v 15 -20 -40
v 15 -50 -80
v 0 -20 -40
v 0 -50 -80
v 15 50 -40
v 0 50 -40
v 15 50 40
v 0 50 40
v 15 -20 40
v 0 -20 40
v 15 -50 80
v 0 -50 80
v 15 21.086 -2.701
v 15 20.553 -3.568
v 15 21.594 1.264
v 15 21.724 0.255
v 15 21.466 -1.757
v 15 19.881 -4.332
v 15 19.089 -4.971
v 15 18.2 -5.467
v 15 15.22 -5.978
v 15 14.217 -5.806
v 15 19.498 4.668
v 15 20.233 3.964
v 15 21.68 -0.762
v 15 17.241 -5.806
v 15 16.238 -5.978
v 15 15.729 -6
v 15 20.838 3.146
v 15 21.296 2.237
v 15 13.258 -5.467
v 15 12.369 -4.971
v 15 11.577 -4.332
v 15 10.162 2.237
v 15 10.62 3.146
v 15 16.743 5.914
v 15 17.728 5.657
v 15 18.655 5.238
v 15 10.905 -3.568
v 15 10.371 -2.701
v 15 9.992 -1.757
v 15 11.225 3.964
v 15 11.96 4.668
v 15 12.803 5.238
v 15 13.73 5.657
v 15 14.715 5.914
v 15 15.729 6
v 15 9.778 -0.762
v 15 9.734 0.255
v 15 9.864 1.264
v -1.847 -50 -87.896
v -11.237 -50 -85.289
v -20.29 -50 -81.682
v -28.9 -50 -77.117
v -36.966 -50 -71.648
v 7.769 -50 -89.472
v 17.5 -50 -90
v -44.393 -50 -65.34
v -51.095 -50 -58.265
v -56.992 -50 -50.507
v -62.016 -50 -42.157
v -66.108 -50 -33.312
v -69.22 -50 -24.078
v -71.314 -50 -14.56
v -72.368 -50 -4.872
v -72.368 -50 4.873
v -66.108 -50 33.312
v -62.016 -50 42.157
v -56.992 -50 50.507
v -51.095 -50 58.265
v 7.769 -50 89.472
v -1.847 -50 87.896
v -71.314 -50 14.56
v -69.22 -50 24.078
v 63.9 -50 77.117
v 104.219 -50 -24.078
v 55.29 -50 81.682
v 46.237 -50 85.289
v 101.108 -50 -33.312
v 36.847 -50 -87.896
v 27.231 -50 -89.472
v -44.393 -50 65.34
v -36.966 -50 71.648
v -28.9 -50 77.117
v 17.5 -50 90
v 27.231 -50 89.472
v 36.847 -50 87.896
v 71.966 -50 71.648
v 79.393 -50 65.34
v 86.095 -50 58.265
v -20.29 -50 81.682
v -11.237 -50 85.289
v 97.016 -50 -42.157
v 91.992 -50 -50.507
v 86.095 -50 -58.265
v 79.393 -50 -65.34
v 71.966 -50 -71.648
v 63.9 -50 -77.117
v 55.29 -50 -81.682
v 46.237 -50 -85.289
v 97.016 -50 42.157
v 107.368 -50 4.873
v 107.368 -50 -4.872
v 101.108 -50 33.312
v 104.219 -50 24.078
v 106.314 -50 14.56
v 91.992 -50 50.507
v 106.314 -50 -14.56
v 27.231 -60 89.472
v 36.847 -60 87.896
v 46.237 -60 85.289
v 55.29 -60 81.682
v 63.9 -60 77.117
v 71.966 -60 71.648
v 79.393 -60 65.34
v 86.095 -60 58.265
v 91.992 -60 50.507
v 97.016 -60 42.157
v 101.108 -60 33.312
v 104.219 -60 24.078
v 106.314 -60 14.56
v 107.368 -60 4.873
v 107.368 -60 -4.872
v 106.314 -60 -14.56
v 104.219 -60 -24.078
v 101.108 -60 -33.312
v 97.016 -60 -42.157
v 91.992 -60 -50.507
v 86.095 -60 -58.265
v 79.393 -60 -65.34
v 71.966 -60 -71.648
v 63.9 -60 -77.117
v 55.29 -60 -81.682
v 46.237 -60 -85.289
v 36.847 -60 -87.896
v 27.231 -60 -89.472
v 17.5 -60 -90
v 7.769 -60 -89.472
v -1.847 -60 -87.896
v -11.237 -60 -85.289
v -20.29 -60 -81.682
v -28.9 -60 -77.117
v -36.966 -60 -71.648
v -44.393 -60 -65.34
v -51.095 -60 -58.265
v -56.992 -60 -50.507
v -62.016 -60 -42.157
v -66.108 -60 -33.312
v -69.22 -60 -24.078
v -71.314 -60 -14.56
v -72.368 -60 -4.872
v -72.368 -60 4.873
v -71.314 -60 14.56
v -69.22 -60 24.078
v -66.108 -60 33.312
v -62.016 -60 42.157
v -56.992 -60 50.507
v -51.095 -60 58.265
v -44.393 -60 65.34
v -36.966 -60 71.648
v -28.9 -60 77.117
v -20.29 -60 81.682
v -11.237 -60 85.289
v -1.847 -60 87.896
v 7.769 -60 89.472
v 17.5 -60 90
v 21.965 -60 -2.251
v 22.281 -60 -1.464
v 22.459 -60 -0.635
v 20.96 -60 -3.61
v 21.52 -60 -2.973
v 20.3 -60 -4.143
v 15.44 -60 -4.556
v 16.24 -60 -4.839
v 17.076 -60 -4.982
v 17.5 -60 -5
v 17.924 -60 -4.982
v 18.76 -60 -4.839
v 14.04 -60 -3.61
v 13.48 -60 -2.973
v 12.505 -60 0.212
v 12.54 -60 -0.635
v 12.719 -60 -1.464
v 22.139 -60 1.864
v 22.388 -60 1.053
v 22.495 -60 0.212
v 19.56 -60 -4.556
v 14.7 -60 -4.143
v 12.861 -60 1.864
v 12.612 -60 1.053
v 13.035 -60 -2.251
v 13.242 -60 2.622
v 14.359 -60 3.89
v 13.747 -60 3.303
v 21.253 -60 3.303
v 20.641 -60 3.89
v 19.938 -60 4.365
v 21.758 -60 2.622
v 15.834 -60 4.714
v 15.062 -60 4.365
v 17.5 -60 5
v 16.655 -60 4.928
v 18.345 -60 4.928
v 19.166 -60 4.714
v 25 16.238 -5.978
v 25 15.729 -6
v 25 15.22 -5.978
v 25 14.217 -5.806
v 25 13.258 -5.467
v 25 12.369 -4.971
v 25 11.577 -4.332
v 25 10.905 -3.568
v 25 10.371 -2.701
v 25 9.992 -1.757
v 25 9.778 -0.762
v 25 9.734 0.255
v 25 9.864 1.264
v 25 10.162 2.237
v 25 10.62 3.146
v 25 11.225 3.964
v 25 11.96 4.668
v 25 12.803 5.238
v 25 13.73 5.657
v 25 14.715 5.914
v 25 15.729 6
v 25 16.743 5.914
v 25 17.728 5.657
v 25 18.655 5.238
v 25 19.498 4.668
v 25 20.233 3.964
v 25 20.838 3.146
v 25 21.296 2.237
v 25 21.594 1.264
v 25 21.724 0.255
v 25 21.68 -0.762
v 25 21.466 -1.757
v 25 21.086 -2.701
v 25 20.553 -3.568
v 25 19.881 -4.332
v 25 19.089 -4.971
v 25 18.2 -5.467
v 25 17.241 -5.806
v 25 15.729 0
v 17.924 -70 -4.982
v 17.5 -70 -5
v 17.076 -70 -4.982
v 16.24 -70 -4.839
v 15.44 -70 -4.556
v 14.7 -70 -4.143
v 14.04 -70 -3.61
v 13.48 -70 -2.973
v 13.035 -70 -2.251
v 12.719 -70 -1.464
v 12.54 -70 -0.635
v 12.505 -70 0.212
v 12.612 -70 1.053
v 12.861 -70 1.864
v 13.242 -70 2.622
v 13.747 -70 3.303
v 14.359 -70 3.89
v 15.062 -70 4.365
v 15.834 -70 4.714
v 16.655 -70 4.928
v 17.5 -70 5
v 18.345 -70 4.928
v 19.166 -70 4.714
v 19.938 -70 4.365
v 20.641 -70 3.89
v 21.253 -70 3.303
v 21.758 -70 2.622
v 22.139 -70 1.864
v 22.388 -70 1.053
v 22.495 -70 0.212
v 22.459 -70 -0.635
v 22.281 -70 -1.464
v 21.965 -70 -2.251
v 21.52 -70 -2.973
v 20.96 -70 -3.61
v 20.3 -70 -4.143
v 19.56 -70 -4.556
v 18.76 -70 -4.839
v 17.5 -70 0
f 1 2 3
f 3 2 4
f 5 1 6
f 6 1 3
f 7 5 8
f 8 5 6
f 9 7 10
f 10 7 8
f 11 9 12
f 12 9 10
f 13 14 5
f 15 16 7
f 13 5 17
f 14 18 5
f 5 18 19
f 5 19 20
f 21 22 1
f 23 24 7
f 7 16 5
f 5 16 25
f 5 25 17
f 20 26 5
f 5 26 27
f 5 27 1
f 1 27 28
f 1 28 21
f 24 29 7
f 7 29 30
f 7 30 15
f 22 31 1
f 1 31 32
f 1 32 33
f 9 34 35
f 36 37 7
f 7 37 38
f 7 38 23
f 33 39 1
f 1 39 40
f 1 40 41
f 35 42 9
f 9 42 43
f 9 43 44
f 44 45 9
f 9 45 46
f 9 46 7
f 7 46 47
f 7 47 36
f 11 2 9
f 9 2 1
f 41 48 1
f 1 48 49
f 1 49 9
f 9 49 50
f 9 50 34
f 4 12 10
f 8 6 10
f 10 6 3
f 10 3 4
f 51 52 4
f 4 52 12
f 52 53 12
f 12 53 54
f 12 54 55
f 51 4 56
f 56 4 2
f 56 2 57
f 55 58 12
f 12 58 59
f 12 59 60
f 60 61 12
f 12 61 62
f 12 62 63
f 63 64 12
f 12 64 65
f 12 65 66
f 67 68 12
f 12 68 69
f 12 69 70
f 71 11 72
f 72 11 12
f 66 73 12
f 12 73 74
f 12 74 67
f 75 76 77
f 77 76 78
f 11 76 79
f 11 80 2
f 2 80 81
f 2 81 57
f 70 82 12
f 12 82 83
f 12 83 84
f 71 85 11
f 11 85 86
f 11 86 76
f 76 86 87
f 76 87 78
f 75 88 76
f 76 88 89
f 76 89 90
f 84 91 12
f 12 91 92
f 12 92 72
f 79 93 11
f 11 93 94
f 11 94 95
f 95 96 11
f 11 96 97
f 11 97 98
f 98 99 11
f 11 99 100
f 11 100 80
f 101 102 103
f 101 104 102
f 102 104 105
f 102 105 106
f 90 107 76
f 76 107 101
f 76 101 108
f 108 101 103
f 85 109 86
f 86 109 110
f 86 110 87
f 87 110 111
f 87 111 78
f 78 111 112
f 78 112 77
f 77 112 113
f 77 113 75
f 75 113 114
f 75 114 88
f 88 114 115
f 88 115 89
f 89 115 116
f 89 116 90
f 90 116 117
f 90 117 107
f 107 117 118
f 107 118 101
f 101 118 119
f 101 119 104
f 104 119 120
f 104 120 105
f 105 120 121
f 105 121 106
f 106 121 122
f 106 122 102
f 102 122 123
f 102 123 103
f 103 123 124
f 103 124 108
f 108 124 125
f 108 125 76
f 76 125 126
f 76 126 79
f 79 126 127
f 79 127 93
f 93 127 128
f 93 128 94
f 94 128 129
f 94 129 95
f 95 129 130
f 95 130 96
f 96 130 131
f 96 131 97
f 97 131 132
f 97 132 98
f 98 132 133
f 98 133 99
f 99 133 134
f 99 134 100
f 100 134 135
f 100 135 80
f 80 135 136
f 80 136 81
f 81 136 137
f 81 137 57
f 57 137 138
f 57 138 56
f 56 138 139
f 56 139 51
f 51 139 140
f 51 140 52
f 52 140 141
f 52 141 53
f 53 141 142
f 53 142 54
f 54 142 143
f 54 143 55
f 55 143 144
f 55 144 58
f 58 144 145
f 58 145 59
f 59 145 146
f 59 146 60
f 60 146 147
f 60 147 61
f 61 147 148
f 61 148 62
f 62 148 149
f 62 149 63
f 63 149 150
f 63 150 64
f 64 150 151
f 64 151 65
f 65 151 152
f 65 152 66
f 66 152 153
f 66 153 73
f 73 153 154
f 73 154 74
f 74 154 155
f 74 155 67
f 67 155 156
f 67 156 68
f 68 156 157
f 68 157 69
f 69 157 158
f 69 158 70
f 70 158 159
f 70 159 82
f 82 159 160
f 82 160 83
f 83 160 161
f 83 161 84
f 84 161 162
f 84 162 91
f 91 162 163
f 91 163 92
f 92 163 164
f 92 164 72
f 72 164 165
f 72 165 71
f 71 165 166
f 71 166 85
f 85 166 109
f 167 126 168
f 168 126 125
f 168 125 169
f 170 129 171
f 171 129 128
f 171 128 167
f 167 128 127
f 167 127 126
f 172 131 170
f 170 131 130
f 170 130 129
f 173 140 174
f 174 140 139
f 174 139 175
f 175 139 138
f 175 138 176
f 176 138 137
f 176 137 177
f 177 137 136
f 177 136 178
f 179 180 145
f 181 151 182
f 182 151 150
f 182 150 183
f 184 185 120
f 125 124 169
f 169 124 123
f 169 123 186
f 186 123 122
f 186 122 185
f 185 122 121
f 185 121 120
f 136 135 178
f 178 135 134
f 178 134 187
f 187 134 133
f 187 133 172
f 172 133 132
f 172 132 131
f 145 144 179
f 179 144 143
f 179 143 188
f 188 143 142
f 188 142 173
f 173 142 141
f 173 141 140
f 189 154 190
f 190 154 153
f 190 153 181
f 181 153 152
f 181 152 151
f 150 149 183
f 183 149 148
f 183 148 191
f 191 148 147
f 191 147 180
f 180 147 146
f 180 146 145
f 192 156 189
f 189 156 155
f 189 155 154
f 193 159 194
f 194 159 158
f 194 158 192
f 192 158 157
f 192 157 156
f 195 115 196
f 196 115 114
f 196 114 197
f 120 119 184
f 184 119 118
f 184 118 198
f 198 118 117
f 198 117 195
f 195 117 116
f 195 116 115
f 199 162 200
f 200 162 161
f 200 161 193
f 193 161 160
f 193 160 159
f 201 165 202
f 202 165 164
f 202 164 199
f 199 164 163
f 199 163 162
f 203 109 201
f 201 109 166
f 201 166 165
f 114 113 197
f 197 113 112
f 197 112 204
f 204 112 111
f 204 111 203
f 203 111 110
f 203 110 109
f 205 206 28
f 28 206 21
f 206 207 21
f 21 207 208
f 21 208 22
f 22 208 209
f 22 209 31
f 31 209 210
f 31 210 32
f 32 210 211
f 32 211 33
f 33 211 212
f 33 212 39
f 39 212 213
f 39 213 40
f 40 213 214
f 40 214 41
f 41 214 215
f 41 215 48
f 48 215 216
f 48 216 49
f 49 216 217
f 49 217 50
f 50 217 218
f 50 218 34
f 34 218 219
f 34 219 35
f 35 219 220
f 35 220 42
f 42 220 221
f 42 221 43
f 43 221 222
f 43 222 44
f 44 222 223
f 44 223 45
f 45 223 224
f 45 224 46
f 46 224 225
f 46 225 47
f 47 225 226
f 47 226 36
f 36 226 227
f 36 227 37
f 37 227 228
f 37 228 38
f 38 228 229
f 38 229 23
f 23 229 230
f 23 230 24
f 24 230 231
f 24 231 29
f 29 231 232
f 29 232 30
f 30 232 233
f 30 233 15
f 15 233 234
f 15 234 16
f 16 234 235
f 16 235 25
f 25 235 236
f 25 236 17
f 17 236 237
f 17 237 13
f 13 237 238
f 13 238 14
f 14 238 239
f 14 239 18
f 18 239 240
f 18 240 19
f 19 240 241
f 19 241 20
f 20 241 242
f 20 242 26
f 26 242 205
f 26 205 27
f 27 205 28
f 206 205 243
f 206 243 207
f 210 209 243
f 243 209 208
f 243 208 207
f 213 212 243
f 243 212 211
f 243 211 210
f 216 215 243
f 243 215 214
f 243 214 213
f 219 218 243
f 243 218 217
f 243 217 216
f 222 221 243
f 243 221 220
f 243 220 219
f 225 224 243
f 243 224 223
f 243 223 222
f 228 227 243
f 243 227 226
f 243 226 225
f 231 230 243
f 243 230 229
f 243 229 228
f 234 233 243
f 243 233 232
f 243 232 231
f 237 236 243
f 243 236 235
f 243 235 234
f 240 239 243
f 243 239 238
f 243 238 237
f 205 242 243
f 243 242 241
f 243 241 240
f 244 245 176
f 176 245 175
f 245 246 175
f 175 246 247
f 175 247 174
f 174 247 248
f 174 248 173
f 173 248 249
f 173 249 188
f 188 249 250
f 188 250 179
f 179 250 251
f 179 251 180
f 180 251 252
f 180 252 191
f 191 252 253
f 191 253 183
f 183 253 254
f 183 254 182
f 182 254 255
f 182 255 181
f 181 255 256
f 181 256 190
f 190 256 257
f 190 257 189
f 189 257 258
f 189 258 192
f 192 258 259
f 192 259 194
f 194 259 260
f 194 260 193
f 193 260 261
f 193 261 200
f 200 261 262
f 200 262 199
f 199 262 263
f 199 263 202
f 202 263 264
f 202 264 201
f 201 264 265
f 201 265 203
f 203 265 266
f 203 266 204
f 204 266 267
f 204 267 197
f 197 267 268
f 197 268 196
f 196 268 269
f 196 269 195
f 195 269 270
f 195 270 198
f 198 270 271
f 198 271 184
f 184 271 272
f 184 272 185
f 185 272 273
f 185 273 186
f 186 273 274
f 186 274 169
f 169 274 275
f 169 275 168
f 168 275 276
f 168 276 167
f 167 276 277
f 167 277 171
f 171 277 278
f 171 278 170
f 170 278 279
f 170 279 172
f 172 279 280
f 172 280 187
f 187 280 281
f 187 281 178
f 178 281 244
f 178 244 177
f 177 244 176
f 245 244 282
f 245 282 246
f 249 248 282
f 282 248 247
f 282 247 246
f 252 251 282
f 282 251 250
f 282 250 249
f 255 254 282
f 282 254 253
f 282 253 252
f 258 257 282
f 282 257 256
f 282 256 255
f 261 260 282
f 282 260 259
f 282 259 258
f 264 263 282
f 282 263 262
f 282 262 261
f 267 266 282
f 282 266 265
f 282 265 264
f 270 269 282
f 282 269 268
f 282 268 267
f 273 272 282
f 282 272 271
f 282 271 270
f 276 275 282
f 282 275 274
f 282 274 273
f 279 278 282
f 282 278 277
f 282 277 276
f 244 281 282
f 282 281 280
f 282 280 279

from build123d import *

# Parameters (mm, degrees)
SKETCH1_W           = 80
SKETCH1_H           = 100
BOSS_EXTRUDE1_DEPTH = 15
SKETCH3_R           = 90
BOSS_EXTRUDE2_DEPTH = 10
SKETCH2_R           = 6
BOSS_EXTRUDE3_DEPTH = 10
SKETCH4_R           = 5
BOSS_EXTRUDE4_DEPTH = 10


with BuildPart() as part:
    # Sketch1 → Boss-Extrude1 (new body)
    with BuildSketch(Plane(origin=(0, 0, 0), x_dir=(0, 0, -1), z_dir=(1, 0, 0))):
        Polygon((40, -20), (40, -50), (80, -50), align=None)
        Rectangle(SKETCH1_W, SKETCH1_H)
        Polygon((-80, -50), (-40, -50), (-40, -20), align=None)
    extrude(amount=BOSS_EXTRUDE1_DEPTH)

    # Sketch3 → Boss-Extrude2 (add)
    with BuildSketch(Plane.XZ.offset(50)):
        with Locations((17.5, 0)):
            Circle(SKETCH3_R)
    extrude(amount=BOSS_EXTRUDE2_DEPTH)

    # Sketch2 → Boss-Extrude3 (add)
    with BuildSketch(Plane(origin=(15, 0, 0), x_dir=(0, 0, -1), z_dir=(1, 0, 0))):
        with Locations((0, 15.728916746)):
            Circle(SKETCH2_R)
    extrude(amount=BOSS_EXTRUDE3_DEPTH)

    # Sketch4 → Boss-Extrude4 (add)
    with BuildSketch(Plane.XZ.offset(60)):
        with Locations((17.5, 0)):
            Circle(SKETCH4_R)
    extrude(amount=BOSS_EXTRUDE4_DEPTH)


solid = part.part
